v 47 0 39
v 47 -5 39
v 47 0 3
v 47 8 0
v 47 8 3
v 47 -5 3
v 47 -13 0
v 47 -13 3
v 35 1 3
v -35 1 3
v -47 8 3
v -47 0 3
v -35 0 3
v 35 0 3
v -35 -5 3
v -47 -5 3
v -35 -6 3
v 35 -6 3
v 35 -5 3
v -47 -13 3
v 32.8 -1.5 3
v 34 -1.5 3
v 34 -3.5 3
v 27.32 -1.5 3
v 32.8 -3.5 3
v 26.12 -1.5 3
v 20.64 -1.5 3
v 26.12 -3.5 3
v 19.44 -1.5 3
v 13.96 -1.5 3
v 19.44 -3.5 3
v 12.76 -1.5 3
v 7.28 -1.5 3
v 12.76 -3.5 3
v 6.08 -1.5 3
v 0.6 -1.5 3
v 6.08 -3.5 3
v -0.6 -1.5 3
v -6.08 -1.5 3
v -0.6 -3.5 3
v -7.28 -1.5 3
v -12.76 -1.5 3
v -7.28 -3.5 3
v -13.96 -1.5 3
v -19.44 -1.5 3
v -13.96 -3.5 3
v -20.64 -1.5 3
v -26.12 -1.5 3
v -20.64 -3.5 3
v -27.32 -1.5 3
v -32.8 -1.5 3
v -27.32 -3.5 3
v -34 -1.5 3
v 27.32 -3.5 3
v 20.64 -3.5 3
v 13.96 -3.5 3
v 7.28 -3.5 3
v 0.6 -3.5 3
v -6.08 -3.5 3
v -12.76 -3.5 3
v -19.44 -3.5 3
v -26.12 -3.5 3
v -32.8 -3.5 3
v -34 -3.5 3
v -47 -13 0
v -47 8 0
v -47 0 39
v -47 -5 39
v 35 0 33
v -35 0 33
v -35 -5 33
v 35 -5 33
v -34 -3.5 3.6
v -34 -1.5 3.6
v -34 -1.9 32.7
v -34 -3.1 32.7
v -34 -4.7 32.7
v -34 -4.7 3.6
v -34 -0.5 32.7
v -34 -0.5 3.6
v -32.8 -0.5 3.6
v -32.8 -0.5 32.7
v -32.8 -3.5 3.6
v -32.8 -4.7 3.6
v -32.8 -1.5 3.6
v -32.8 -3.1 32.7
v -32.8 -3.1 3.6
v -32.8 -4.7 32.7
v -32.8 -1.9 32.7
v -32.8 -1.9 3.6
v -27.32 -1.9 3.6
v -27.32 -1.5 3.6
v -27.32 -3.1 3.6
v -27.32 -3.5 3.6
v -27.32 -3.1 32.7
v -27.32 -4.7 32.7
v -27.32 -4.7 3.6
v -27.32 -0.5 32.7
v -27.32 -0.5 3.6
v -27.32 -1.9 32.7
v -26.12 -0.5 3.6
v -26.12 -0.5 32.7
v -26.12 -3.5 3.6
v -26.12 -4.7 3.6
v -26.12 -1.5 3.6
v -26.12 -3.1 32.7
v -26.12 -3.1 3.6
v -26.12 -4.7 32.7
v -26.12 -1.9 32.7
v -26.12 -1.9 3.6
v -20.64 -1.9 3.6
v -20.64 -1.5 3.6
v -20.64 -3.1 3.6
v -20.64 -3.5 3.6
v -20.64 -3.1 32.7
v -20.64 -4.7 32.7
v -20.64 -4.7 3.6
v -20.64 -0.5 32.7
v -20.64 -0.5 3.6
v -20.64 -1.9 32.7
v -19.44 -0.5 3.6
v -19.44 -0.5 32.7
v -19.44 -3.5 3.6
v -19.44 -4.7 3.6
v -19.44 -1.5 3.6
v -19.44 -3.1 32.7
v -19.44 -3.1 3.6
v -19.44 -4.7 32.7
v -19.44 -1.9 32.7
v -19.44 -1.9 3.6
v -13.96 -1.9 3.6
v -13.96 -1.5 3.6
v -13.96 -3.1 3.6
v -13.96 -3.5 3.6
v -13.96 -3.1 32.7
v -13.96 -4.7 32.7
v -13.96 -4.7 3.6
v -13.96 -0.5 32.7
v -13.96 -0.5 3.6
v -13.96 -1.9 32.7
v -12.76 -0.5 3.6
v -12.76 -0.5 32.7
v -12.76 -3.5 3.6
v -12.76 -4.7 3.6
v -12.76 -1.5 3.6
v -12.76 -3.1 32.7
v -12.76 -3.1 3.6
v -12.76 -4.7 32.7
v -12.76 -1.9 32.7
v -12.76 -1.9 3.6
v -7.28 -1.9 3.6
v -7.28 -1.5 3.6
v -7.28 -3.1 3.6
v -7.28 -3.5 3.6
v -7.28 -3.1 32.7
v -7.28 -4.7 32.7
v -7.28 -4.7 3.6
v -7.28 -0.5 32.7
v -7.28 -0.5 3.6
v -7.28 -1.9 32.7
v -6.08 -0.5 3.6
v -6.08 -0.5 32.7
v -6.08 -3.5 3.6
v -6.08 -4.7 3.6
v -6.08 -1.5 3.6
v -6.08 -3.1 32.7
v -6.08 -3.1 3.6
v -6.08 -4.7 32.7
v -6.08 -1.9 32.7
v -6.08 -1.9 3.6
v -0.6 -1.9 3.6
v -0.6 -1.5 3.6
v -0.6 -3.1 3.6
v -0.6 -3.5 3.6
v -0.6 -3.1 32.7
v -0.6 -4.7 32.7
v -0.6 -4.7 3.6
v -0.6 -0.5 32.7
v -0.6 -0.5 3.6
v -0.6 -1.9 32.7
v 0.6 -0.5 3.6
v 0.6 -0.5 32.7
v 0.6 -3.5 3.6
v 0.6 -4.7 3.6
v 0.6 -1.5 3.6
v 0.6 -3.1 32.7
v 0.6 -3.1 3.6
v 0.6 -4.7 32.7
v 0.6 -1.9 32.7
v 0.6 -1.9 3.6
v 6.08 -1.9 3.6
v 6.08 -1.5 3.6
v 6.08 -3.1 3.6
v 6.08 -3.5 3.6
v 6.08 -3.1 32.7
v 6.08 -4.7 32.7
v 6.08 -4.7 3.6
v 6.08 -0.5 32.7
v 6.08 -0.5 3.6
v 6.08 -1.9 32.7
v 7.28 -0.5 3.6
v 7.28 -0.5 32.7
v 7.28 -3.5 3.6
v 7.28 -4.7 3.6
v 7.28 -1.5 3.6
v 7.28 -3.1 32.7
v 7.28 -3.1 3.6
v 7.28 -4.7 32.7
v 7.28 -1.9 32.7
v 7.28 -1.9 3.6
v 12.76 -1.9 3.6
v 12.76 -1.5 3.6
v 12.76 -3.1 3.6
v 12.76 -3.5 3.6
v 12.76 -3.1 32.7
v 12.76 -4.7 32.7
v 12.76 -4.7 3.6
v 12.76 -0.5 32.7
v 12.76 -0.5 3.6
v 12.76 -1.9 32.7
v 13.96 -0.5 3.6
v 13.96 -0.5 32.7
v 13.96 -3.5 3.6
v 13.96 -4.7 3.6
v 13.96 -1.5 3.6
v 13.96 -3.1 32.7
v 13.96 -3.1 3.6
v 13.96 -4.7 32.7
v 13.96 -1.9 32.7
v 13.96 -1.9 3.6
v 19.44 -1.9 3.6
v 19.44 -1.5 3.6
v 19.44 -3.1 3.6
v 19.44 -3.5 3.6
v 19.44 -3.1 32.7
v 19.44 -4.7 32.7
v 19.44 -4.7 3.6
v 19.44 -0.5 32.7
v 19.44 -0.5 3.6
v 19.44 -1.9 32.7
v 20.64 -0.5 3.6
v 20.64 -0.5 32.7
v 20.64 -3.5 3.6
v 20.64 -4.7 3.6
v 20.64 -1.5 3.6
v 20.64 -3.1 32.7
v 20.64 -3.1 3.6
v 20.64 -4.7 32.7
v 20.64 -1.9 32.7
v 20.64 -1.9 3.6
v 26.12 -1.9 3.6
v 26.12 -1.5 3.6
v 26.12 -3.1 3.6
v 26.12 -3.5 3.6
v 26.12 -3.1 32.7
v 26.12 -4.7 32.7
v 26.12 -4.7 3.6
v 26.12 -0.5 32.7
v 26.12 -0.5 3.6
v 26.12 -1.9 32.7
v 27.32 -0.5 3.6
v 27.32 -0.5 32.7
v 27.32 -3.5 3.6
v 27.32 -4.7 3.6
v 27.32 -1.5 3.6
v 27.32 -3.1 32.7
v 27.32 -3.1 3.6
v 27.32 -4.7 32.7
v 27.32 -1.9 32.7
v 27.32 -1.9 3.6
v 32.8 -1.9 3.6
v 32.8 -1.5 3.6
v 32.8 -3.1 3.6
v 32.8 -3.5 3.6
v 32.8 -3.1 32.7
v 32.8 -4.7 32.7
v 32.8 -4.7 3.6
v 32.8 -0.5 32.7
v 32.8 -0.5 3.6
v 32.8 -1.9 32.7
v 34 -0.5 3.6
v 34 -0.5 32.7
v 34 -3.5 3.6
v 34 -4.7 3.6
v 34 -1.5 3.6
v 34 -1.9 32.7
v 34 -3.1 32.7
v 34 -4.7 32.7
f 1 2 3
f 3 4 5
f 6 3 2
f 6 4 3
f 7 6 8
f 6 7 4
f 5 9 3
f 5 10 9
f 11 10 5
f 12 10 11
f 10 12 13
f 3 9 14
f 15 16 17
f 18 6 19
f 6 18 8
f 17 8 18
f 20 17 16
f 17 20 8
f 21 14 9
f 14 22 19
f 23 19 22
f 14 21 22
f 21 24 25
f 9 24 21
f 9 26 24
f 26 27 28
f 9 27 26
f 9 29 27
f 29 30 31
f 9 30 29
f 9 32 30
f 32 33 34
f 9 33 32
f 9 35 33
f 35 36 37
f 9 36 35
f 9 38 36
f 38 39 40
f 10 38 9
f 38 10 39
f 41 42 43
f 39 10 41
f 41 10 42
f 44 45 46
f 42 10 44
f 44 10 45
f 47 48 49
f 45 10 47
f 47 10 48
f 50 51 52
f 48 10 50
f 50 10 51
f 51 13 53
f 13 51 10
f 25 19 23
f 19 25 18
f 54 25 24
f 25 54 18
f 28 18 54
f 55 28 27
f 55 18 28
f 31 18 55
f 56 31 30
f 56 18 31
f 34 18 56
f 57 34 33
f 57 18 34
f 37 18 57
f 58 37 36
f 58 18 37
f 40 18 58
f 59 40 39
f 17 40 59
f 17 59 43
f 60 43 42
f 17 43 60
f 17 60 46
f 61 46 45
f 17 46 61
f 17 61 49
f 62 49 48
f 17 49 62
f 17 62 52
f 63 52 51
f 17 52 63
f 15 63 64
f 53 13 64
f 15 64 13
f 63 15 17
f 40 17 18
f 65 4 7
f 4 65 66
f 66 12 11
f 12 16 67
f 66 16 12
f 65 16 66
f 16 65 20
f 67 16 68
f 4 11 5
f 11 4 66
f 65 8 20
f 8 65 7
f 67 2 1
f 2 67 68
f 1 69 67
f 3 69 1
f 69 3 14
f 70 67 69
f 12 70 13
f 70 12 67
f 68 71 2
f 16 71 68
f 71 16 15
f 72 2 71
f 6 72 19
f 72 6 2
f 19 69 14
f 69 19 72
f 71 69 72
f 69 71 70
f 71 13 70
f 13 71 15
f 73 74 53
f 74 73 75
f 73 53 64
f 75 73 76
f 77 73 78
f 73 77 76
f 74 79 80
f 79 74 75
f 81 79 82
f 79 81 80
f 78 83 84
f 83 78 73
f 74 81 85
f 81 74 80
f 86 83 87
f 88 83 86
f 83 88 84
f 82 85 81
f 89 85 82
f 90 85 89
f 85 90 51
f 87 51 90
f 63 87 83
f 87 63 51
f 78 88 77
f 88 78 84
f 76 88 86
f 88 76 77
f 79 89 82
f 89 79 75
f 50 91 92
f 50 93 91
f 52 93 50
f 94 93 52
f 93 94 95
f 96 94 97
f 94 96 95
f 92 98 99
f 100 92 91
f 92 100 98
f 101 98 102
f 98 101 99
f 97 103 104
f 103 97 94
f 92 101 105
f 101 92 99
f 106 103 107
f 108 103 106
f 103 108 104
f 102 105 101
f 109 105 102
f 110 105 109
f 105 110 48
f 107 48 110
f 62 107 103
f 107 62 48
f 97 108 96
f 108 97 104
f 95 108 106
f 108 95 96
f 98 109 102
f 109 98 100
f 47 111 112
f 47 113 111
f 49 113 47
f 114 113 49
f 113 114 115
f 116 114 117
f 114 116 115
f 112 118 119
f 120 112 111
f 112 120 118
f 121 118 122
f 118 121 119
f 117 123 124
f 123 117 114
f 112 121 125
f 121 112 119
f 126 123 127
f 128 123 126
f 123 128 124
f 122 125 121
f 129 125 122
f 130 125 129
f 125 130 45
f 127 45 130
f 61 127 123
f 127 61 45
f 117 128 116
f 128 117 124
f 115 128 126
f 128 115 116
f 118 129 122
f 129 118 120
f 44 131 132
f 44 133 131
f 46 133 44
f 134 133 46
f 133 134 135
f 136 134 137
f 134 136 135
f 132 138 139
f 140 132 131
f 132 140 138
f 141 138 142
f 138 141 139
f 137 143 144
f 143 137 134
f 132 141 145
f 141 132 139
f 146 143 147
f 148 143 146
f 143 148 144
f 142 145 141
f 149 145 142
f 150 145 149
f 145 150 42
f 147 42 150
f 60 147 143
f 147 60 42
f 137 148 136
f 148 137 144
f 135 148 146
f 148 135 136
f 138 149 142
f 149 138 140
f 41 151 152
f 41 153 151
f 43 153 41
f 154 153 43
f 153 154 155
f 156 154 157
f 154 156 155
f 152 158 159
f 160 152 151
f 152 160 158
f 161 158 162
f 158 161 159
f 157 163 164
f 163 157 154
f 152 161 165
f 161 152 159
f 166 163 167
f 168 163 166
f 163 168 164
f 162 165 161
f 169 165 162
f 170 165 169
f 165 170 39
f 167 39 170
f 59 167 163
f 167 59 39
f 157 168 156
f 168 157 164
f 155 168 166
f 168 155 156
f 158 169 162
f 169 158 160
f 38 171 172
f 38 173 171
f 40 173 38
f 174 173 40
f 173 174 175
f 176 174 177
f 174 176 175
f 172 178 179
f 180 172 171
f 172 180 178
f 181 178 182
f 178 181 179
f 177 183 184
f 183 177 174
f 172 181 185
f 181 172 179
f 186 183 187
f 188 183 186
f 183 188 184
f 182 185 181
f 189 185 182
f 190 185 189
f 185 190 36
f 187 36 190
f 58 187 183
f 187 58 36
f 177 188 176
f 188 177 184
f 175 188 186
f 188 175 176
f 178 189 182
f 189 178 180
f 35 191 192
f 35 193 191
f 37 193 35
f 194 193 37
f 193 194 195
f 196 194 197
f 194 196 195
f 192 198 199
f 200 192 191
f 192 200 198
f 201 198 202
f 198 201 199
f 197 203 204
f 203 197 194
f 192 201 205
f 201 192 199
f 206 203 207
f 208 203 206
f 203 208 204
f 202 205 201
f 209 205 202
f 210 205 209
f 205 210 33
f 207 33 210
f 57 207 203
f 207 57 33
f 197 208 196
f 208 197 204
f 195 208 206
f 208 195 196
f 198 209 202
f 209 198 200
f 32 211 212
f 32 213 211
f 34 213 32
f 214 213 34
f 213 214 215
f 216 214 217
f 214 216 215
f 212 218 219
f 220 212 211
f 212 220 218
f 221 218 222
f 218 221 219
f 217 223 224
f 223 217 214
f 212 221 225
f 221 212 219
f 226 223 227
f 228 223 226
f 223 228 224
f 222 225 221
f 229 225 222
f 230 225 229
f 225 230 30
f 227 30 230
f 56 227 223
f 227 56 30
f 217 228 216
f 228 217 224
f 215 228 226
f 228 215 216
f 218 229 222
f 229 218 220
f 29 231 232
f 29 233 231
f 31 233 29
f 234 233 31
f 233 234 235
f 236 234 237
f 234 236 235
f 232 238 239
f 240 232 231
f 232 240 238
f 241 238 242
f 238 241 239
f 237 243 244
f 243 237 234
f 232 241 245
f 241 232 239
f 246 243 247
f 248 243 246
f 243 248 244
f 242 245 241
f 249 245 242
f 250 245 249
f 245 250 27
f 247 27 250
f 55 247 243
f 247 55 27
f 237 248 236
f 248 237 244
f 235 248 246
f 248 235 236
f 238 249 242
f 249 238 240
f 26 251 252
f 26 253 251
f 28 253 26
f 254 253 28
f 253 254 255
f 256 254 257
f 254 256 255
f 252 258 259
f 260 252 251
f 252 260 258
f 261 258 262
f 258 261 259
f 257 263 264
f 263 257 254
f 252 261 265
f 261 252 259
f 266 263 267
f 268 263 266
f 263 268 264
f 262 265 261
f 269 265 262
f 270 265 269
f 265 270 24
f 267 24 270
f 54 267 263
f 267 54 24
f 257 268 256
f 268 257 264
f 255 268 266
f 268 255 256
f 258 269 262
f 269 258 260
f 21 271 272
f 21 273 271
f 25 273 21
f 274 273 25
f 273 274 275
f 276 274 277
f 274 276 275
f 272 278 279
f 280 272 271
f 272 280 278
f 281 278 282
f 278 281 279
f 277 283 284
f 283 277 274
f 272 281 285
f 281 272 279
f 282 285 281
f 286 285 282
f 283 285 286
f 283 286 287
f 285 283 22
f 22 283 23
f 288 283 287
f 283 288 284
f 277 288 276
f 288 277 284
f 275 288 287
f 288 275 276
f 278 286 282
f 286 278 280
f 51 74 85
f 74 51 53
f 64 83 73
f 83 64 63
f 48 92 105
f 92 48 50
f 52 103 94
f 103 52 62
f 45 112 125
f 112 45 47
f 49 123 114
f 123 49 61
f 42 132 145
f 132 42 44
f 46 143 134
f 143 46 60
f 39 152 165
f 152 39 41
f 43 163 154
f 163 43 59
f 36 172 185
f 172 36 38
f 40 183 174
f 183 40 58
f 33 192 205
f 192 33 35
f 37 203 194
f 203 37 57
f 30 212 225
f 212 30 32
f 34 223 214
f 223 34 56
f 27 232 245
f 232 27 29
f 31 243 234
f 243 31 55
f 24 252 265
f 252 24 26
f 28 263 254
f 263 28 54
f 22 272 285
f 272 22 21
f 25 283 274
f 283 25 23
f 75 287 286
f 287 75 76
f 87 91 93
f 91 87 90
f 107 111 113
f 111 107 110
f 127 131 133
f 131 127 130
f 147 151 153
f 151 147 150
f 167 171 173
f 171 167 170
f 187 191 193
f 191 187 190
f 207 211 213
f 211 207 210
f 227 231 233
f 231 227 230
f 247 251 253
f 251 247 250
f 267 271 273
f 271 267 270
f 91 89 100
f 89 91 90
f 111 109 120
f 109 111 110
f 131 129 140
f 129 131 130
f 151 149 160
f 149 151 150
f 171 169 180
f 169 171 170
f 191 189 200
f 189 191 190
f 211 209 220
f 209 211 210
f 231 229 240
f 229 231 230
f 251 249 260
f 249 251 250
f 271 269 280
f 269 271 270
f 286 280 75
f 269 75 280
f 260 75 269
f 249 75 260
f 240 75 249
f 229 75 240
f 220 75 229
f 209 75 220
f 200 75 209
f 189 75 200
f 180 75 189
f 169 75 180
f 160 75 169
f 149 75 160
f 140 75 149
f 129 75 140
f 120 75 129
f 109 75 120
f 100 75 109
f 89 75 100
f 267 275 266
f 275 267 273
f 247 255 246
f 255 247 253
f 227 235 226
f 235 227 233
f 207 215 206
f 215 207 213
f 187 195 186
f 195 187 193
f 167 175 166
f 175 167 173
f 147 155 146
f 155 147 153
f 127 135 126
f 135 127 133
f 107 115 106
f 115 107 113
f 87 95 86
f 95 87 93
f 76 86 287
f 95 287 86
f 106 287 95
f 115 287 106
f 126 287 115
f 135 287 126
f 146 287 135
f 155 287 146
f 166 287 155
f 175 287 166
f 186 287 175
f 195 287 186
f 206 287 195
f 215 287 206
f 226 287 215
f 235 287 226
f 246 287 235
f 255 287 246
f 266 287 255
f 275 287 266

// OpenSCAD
// Breakaway-support test: a 70 mm opening with the same comb the corner modules get under their window heads.
// Print it with the house settings (no slicer supports), then snip the tabs and lift the comb out.
// The head should come away clean and flat, with the comb leaving only faint lines.
// Usage: openscad -o stl/test/breakaway_test.stl tools/breakaway_test.scad
include <../cat_house.scad>
part = "none";

L = 70;      // span of the head, as in the window
D = wt;      // wall core depth
H = 30;      // opening height (the real one is 90; the comb's top and bottom are what matter)
B = 3;       // base plate under the wall

difference() {
  union() {
    translate([-L/2 - 12, -D - 8, 0]) cube([L + 24, D + 16, B]);          // base plate, so the wall stands
    translate([-L/2 - 12, -D, 0]) cube([L + 24, D, B + H + 6]);           // wall
  }
  translate([-L/2, -D - 1, B]) cube([L, D + 2, H]);                       // the opening: its top bridges L
}
bk_comb(-L/2 + bk_side, L/2 - bk_side,
        [[-D + 0.3, B + bk_tab_h], [-0.5, B + bk_tab_h], [-0.5, B + H - bk_gap], [-D + 0.3, B + H - bk_gap]],
        -D/2, [B + bk_tab_h, B + H - bk_gap]);
